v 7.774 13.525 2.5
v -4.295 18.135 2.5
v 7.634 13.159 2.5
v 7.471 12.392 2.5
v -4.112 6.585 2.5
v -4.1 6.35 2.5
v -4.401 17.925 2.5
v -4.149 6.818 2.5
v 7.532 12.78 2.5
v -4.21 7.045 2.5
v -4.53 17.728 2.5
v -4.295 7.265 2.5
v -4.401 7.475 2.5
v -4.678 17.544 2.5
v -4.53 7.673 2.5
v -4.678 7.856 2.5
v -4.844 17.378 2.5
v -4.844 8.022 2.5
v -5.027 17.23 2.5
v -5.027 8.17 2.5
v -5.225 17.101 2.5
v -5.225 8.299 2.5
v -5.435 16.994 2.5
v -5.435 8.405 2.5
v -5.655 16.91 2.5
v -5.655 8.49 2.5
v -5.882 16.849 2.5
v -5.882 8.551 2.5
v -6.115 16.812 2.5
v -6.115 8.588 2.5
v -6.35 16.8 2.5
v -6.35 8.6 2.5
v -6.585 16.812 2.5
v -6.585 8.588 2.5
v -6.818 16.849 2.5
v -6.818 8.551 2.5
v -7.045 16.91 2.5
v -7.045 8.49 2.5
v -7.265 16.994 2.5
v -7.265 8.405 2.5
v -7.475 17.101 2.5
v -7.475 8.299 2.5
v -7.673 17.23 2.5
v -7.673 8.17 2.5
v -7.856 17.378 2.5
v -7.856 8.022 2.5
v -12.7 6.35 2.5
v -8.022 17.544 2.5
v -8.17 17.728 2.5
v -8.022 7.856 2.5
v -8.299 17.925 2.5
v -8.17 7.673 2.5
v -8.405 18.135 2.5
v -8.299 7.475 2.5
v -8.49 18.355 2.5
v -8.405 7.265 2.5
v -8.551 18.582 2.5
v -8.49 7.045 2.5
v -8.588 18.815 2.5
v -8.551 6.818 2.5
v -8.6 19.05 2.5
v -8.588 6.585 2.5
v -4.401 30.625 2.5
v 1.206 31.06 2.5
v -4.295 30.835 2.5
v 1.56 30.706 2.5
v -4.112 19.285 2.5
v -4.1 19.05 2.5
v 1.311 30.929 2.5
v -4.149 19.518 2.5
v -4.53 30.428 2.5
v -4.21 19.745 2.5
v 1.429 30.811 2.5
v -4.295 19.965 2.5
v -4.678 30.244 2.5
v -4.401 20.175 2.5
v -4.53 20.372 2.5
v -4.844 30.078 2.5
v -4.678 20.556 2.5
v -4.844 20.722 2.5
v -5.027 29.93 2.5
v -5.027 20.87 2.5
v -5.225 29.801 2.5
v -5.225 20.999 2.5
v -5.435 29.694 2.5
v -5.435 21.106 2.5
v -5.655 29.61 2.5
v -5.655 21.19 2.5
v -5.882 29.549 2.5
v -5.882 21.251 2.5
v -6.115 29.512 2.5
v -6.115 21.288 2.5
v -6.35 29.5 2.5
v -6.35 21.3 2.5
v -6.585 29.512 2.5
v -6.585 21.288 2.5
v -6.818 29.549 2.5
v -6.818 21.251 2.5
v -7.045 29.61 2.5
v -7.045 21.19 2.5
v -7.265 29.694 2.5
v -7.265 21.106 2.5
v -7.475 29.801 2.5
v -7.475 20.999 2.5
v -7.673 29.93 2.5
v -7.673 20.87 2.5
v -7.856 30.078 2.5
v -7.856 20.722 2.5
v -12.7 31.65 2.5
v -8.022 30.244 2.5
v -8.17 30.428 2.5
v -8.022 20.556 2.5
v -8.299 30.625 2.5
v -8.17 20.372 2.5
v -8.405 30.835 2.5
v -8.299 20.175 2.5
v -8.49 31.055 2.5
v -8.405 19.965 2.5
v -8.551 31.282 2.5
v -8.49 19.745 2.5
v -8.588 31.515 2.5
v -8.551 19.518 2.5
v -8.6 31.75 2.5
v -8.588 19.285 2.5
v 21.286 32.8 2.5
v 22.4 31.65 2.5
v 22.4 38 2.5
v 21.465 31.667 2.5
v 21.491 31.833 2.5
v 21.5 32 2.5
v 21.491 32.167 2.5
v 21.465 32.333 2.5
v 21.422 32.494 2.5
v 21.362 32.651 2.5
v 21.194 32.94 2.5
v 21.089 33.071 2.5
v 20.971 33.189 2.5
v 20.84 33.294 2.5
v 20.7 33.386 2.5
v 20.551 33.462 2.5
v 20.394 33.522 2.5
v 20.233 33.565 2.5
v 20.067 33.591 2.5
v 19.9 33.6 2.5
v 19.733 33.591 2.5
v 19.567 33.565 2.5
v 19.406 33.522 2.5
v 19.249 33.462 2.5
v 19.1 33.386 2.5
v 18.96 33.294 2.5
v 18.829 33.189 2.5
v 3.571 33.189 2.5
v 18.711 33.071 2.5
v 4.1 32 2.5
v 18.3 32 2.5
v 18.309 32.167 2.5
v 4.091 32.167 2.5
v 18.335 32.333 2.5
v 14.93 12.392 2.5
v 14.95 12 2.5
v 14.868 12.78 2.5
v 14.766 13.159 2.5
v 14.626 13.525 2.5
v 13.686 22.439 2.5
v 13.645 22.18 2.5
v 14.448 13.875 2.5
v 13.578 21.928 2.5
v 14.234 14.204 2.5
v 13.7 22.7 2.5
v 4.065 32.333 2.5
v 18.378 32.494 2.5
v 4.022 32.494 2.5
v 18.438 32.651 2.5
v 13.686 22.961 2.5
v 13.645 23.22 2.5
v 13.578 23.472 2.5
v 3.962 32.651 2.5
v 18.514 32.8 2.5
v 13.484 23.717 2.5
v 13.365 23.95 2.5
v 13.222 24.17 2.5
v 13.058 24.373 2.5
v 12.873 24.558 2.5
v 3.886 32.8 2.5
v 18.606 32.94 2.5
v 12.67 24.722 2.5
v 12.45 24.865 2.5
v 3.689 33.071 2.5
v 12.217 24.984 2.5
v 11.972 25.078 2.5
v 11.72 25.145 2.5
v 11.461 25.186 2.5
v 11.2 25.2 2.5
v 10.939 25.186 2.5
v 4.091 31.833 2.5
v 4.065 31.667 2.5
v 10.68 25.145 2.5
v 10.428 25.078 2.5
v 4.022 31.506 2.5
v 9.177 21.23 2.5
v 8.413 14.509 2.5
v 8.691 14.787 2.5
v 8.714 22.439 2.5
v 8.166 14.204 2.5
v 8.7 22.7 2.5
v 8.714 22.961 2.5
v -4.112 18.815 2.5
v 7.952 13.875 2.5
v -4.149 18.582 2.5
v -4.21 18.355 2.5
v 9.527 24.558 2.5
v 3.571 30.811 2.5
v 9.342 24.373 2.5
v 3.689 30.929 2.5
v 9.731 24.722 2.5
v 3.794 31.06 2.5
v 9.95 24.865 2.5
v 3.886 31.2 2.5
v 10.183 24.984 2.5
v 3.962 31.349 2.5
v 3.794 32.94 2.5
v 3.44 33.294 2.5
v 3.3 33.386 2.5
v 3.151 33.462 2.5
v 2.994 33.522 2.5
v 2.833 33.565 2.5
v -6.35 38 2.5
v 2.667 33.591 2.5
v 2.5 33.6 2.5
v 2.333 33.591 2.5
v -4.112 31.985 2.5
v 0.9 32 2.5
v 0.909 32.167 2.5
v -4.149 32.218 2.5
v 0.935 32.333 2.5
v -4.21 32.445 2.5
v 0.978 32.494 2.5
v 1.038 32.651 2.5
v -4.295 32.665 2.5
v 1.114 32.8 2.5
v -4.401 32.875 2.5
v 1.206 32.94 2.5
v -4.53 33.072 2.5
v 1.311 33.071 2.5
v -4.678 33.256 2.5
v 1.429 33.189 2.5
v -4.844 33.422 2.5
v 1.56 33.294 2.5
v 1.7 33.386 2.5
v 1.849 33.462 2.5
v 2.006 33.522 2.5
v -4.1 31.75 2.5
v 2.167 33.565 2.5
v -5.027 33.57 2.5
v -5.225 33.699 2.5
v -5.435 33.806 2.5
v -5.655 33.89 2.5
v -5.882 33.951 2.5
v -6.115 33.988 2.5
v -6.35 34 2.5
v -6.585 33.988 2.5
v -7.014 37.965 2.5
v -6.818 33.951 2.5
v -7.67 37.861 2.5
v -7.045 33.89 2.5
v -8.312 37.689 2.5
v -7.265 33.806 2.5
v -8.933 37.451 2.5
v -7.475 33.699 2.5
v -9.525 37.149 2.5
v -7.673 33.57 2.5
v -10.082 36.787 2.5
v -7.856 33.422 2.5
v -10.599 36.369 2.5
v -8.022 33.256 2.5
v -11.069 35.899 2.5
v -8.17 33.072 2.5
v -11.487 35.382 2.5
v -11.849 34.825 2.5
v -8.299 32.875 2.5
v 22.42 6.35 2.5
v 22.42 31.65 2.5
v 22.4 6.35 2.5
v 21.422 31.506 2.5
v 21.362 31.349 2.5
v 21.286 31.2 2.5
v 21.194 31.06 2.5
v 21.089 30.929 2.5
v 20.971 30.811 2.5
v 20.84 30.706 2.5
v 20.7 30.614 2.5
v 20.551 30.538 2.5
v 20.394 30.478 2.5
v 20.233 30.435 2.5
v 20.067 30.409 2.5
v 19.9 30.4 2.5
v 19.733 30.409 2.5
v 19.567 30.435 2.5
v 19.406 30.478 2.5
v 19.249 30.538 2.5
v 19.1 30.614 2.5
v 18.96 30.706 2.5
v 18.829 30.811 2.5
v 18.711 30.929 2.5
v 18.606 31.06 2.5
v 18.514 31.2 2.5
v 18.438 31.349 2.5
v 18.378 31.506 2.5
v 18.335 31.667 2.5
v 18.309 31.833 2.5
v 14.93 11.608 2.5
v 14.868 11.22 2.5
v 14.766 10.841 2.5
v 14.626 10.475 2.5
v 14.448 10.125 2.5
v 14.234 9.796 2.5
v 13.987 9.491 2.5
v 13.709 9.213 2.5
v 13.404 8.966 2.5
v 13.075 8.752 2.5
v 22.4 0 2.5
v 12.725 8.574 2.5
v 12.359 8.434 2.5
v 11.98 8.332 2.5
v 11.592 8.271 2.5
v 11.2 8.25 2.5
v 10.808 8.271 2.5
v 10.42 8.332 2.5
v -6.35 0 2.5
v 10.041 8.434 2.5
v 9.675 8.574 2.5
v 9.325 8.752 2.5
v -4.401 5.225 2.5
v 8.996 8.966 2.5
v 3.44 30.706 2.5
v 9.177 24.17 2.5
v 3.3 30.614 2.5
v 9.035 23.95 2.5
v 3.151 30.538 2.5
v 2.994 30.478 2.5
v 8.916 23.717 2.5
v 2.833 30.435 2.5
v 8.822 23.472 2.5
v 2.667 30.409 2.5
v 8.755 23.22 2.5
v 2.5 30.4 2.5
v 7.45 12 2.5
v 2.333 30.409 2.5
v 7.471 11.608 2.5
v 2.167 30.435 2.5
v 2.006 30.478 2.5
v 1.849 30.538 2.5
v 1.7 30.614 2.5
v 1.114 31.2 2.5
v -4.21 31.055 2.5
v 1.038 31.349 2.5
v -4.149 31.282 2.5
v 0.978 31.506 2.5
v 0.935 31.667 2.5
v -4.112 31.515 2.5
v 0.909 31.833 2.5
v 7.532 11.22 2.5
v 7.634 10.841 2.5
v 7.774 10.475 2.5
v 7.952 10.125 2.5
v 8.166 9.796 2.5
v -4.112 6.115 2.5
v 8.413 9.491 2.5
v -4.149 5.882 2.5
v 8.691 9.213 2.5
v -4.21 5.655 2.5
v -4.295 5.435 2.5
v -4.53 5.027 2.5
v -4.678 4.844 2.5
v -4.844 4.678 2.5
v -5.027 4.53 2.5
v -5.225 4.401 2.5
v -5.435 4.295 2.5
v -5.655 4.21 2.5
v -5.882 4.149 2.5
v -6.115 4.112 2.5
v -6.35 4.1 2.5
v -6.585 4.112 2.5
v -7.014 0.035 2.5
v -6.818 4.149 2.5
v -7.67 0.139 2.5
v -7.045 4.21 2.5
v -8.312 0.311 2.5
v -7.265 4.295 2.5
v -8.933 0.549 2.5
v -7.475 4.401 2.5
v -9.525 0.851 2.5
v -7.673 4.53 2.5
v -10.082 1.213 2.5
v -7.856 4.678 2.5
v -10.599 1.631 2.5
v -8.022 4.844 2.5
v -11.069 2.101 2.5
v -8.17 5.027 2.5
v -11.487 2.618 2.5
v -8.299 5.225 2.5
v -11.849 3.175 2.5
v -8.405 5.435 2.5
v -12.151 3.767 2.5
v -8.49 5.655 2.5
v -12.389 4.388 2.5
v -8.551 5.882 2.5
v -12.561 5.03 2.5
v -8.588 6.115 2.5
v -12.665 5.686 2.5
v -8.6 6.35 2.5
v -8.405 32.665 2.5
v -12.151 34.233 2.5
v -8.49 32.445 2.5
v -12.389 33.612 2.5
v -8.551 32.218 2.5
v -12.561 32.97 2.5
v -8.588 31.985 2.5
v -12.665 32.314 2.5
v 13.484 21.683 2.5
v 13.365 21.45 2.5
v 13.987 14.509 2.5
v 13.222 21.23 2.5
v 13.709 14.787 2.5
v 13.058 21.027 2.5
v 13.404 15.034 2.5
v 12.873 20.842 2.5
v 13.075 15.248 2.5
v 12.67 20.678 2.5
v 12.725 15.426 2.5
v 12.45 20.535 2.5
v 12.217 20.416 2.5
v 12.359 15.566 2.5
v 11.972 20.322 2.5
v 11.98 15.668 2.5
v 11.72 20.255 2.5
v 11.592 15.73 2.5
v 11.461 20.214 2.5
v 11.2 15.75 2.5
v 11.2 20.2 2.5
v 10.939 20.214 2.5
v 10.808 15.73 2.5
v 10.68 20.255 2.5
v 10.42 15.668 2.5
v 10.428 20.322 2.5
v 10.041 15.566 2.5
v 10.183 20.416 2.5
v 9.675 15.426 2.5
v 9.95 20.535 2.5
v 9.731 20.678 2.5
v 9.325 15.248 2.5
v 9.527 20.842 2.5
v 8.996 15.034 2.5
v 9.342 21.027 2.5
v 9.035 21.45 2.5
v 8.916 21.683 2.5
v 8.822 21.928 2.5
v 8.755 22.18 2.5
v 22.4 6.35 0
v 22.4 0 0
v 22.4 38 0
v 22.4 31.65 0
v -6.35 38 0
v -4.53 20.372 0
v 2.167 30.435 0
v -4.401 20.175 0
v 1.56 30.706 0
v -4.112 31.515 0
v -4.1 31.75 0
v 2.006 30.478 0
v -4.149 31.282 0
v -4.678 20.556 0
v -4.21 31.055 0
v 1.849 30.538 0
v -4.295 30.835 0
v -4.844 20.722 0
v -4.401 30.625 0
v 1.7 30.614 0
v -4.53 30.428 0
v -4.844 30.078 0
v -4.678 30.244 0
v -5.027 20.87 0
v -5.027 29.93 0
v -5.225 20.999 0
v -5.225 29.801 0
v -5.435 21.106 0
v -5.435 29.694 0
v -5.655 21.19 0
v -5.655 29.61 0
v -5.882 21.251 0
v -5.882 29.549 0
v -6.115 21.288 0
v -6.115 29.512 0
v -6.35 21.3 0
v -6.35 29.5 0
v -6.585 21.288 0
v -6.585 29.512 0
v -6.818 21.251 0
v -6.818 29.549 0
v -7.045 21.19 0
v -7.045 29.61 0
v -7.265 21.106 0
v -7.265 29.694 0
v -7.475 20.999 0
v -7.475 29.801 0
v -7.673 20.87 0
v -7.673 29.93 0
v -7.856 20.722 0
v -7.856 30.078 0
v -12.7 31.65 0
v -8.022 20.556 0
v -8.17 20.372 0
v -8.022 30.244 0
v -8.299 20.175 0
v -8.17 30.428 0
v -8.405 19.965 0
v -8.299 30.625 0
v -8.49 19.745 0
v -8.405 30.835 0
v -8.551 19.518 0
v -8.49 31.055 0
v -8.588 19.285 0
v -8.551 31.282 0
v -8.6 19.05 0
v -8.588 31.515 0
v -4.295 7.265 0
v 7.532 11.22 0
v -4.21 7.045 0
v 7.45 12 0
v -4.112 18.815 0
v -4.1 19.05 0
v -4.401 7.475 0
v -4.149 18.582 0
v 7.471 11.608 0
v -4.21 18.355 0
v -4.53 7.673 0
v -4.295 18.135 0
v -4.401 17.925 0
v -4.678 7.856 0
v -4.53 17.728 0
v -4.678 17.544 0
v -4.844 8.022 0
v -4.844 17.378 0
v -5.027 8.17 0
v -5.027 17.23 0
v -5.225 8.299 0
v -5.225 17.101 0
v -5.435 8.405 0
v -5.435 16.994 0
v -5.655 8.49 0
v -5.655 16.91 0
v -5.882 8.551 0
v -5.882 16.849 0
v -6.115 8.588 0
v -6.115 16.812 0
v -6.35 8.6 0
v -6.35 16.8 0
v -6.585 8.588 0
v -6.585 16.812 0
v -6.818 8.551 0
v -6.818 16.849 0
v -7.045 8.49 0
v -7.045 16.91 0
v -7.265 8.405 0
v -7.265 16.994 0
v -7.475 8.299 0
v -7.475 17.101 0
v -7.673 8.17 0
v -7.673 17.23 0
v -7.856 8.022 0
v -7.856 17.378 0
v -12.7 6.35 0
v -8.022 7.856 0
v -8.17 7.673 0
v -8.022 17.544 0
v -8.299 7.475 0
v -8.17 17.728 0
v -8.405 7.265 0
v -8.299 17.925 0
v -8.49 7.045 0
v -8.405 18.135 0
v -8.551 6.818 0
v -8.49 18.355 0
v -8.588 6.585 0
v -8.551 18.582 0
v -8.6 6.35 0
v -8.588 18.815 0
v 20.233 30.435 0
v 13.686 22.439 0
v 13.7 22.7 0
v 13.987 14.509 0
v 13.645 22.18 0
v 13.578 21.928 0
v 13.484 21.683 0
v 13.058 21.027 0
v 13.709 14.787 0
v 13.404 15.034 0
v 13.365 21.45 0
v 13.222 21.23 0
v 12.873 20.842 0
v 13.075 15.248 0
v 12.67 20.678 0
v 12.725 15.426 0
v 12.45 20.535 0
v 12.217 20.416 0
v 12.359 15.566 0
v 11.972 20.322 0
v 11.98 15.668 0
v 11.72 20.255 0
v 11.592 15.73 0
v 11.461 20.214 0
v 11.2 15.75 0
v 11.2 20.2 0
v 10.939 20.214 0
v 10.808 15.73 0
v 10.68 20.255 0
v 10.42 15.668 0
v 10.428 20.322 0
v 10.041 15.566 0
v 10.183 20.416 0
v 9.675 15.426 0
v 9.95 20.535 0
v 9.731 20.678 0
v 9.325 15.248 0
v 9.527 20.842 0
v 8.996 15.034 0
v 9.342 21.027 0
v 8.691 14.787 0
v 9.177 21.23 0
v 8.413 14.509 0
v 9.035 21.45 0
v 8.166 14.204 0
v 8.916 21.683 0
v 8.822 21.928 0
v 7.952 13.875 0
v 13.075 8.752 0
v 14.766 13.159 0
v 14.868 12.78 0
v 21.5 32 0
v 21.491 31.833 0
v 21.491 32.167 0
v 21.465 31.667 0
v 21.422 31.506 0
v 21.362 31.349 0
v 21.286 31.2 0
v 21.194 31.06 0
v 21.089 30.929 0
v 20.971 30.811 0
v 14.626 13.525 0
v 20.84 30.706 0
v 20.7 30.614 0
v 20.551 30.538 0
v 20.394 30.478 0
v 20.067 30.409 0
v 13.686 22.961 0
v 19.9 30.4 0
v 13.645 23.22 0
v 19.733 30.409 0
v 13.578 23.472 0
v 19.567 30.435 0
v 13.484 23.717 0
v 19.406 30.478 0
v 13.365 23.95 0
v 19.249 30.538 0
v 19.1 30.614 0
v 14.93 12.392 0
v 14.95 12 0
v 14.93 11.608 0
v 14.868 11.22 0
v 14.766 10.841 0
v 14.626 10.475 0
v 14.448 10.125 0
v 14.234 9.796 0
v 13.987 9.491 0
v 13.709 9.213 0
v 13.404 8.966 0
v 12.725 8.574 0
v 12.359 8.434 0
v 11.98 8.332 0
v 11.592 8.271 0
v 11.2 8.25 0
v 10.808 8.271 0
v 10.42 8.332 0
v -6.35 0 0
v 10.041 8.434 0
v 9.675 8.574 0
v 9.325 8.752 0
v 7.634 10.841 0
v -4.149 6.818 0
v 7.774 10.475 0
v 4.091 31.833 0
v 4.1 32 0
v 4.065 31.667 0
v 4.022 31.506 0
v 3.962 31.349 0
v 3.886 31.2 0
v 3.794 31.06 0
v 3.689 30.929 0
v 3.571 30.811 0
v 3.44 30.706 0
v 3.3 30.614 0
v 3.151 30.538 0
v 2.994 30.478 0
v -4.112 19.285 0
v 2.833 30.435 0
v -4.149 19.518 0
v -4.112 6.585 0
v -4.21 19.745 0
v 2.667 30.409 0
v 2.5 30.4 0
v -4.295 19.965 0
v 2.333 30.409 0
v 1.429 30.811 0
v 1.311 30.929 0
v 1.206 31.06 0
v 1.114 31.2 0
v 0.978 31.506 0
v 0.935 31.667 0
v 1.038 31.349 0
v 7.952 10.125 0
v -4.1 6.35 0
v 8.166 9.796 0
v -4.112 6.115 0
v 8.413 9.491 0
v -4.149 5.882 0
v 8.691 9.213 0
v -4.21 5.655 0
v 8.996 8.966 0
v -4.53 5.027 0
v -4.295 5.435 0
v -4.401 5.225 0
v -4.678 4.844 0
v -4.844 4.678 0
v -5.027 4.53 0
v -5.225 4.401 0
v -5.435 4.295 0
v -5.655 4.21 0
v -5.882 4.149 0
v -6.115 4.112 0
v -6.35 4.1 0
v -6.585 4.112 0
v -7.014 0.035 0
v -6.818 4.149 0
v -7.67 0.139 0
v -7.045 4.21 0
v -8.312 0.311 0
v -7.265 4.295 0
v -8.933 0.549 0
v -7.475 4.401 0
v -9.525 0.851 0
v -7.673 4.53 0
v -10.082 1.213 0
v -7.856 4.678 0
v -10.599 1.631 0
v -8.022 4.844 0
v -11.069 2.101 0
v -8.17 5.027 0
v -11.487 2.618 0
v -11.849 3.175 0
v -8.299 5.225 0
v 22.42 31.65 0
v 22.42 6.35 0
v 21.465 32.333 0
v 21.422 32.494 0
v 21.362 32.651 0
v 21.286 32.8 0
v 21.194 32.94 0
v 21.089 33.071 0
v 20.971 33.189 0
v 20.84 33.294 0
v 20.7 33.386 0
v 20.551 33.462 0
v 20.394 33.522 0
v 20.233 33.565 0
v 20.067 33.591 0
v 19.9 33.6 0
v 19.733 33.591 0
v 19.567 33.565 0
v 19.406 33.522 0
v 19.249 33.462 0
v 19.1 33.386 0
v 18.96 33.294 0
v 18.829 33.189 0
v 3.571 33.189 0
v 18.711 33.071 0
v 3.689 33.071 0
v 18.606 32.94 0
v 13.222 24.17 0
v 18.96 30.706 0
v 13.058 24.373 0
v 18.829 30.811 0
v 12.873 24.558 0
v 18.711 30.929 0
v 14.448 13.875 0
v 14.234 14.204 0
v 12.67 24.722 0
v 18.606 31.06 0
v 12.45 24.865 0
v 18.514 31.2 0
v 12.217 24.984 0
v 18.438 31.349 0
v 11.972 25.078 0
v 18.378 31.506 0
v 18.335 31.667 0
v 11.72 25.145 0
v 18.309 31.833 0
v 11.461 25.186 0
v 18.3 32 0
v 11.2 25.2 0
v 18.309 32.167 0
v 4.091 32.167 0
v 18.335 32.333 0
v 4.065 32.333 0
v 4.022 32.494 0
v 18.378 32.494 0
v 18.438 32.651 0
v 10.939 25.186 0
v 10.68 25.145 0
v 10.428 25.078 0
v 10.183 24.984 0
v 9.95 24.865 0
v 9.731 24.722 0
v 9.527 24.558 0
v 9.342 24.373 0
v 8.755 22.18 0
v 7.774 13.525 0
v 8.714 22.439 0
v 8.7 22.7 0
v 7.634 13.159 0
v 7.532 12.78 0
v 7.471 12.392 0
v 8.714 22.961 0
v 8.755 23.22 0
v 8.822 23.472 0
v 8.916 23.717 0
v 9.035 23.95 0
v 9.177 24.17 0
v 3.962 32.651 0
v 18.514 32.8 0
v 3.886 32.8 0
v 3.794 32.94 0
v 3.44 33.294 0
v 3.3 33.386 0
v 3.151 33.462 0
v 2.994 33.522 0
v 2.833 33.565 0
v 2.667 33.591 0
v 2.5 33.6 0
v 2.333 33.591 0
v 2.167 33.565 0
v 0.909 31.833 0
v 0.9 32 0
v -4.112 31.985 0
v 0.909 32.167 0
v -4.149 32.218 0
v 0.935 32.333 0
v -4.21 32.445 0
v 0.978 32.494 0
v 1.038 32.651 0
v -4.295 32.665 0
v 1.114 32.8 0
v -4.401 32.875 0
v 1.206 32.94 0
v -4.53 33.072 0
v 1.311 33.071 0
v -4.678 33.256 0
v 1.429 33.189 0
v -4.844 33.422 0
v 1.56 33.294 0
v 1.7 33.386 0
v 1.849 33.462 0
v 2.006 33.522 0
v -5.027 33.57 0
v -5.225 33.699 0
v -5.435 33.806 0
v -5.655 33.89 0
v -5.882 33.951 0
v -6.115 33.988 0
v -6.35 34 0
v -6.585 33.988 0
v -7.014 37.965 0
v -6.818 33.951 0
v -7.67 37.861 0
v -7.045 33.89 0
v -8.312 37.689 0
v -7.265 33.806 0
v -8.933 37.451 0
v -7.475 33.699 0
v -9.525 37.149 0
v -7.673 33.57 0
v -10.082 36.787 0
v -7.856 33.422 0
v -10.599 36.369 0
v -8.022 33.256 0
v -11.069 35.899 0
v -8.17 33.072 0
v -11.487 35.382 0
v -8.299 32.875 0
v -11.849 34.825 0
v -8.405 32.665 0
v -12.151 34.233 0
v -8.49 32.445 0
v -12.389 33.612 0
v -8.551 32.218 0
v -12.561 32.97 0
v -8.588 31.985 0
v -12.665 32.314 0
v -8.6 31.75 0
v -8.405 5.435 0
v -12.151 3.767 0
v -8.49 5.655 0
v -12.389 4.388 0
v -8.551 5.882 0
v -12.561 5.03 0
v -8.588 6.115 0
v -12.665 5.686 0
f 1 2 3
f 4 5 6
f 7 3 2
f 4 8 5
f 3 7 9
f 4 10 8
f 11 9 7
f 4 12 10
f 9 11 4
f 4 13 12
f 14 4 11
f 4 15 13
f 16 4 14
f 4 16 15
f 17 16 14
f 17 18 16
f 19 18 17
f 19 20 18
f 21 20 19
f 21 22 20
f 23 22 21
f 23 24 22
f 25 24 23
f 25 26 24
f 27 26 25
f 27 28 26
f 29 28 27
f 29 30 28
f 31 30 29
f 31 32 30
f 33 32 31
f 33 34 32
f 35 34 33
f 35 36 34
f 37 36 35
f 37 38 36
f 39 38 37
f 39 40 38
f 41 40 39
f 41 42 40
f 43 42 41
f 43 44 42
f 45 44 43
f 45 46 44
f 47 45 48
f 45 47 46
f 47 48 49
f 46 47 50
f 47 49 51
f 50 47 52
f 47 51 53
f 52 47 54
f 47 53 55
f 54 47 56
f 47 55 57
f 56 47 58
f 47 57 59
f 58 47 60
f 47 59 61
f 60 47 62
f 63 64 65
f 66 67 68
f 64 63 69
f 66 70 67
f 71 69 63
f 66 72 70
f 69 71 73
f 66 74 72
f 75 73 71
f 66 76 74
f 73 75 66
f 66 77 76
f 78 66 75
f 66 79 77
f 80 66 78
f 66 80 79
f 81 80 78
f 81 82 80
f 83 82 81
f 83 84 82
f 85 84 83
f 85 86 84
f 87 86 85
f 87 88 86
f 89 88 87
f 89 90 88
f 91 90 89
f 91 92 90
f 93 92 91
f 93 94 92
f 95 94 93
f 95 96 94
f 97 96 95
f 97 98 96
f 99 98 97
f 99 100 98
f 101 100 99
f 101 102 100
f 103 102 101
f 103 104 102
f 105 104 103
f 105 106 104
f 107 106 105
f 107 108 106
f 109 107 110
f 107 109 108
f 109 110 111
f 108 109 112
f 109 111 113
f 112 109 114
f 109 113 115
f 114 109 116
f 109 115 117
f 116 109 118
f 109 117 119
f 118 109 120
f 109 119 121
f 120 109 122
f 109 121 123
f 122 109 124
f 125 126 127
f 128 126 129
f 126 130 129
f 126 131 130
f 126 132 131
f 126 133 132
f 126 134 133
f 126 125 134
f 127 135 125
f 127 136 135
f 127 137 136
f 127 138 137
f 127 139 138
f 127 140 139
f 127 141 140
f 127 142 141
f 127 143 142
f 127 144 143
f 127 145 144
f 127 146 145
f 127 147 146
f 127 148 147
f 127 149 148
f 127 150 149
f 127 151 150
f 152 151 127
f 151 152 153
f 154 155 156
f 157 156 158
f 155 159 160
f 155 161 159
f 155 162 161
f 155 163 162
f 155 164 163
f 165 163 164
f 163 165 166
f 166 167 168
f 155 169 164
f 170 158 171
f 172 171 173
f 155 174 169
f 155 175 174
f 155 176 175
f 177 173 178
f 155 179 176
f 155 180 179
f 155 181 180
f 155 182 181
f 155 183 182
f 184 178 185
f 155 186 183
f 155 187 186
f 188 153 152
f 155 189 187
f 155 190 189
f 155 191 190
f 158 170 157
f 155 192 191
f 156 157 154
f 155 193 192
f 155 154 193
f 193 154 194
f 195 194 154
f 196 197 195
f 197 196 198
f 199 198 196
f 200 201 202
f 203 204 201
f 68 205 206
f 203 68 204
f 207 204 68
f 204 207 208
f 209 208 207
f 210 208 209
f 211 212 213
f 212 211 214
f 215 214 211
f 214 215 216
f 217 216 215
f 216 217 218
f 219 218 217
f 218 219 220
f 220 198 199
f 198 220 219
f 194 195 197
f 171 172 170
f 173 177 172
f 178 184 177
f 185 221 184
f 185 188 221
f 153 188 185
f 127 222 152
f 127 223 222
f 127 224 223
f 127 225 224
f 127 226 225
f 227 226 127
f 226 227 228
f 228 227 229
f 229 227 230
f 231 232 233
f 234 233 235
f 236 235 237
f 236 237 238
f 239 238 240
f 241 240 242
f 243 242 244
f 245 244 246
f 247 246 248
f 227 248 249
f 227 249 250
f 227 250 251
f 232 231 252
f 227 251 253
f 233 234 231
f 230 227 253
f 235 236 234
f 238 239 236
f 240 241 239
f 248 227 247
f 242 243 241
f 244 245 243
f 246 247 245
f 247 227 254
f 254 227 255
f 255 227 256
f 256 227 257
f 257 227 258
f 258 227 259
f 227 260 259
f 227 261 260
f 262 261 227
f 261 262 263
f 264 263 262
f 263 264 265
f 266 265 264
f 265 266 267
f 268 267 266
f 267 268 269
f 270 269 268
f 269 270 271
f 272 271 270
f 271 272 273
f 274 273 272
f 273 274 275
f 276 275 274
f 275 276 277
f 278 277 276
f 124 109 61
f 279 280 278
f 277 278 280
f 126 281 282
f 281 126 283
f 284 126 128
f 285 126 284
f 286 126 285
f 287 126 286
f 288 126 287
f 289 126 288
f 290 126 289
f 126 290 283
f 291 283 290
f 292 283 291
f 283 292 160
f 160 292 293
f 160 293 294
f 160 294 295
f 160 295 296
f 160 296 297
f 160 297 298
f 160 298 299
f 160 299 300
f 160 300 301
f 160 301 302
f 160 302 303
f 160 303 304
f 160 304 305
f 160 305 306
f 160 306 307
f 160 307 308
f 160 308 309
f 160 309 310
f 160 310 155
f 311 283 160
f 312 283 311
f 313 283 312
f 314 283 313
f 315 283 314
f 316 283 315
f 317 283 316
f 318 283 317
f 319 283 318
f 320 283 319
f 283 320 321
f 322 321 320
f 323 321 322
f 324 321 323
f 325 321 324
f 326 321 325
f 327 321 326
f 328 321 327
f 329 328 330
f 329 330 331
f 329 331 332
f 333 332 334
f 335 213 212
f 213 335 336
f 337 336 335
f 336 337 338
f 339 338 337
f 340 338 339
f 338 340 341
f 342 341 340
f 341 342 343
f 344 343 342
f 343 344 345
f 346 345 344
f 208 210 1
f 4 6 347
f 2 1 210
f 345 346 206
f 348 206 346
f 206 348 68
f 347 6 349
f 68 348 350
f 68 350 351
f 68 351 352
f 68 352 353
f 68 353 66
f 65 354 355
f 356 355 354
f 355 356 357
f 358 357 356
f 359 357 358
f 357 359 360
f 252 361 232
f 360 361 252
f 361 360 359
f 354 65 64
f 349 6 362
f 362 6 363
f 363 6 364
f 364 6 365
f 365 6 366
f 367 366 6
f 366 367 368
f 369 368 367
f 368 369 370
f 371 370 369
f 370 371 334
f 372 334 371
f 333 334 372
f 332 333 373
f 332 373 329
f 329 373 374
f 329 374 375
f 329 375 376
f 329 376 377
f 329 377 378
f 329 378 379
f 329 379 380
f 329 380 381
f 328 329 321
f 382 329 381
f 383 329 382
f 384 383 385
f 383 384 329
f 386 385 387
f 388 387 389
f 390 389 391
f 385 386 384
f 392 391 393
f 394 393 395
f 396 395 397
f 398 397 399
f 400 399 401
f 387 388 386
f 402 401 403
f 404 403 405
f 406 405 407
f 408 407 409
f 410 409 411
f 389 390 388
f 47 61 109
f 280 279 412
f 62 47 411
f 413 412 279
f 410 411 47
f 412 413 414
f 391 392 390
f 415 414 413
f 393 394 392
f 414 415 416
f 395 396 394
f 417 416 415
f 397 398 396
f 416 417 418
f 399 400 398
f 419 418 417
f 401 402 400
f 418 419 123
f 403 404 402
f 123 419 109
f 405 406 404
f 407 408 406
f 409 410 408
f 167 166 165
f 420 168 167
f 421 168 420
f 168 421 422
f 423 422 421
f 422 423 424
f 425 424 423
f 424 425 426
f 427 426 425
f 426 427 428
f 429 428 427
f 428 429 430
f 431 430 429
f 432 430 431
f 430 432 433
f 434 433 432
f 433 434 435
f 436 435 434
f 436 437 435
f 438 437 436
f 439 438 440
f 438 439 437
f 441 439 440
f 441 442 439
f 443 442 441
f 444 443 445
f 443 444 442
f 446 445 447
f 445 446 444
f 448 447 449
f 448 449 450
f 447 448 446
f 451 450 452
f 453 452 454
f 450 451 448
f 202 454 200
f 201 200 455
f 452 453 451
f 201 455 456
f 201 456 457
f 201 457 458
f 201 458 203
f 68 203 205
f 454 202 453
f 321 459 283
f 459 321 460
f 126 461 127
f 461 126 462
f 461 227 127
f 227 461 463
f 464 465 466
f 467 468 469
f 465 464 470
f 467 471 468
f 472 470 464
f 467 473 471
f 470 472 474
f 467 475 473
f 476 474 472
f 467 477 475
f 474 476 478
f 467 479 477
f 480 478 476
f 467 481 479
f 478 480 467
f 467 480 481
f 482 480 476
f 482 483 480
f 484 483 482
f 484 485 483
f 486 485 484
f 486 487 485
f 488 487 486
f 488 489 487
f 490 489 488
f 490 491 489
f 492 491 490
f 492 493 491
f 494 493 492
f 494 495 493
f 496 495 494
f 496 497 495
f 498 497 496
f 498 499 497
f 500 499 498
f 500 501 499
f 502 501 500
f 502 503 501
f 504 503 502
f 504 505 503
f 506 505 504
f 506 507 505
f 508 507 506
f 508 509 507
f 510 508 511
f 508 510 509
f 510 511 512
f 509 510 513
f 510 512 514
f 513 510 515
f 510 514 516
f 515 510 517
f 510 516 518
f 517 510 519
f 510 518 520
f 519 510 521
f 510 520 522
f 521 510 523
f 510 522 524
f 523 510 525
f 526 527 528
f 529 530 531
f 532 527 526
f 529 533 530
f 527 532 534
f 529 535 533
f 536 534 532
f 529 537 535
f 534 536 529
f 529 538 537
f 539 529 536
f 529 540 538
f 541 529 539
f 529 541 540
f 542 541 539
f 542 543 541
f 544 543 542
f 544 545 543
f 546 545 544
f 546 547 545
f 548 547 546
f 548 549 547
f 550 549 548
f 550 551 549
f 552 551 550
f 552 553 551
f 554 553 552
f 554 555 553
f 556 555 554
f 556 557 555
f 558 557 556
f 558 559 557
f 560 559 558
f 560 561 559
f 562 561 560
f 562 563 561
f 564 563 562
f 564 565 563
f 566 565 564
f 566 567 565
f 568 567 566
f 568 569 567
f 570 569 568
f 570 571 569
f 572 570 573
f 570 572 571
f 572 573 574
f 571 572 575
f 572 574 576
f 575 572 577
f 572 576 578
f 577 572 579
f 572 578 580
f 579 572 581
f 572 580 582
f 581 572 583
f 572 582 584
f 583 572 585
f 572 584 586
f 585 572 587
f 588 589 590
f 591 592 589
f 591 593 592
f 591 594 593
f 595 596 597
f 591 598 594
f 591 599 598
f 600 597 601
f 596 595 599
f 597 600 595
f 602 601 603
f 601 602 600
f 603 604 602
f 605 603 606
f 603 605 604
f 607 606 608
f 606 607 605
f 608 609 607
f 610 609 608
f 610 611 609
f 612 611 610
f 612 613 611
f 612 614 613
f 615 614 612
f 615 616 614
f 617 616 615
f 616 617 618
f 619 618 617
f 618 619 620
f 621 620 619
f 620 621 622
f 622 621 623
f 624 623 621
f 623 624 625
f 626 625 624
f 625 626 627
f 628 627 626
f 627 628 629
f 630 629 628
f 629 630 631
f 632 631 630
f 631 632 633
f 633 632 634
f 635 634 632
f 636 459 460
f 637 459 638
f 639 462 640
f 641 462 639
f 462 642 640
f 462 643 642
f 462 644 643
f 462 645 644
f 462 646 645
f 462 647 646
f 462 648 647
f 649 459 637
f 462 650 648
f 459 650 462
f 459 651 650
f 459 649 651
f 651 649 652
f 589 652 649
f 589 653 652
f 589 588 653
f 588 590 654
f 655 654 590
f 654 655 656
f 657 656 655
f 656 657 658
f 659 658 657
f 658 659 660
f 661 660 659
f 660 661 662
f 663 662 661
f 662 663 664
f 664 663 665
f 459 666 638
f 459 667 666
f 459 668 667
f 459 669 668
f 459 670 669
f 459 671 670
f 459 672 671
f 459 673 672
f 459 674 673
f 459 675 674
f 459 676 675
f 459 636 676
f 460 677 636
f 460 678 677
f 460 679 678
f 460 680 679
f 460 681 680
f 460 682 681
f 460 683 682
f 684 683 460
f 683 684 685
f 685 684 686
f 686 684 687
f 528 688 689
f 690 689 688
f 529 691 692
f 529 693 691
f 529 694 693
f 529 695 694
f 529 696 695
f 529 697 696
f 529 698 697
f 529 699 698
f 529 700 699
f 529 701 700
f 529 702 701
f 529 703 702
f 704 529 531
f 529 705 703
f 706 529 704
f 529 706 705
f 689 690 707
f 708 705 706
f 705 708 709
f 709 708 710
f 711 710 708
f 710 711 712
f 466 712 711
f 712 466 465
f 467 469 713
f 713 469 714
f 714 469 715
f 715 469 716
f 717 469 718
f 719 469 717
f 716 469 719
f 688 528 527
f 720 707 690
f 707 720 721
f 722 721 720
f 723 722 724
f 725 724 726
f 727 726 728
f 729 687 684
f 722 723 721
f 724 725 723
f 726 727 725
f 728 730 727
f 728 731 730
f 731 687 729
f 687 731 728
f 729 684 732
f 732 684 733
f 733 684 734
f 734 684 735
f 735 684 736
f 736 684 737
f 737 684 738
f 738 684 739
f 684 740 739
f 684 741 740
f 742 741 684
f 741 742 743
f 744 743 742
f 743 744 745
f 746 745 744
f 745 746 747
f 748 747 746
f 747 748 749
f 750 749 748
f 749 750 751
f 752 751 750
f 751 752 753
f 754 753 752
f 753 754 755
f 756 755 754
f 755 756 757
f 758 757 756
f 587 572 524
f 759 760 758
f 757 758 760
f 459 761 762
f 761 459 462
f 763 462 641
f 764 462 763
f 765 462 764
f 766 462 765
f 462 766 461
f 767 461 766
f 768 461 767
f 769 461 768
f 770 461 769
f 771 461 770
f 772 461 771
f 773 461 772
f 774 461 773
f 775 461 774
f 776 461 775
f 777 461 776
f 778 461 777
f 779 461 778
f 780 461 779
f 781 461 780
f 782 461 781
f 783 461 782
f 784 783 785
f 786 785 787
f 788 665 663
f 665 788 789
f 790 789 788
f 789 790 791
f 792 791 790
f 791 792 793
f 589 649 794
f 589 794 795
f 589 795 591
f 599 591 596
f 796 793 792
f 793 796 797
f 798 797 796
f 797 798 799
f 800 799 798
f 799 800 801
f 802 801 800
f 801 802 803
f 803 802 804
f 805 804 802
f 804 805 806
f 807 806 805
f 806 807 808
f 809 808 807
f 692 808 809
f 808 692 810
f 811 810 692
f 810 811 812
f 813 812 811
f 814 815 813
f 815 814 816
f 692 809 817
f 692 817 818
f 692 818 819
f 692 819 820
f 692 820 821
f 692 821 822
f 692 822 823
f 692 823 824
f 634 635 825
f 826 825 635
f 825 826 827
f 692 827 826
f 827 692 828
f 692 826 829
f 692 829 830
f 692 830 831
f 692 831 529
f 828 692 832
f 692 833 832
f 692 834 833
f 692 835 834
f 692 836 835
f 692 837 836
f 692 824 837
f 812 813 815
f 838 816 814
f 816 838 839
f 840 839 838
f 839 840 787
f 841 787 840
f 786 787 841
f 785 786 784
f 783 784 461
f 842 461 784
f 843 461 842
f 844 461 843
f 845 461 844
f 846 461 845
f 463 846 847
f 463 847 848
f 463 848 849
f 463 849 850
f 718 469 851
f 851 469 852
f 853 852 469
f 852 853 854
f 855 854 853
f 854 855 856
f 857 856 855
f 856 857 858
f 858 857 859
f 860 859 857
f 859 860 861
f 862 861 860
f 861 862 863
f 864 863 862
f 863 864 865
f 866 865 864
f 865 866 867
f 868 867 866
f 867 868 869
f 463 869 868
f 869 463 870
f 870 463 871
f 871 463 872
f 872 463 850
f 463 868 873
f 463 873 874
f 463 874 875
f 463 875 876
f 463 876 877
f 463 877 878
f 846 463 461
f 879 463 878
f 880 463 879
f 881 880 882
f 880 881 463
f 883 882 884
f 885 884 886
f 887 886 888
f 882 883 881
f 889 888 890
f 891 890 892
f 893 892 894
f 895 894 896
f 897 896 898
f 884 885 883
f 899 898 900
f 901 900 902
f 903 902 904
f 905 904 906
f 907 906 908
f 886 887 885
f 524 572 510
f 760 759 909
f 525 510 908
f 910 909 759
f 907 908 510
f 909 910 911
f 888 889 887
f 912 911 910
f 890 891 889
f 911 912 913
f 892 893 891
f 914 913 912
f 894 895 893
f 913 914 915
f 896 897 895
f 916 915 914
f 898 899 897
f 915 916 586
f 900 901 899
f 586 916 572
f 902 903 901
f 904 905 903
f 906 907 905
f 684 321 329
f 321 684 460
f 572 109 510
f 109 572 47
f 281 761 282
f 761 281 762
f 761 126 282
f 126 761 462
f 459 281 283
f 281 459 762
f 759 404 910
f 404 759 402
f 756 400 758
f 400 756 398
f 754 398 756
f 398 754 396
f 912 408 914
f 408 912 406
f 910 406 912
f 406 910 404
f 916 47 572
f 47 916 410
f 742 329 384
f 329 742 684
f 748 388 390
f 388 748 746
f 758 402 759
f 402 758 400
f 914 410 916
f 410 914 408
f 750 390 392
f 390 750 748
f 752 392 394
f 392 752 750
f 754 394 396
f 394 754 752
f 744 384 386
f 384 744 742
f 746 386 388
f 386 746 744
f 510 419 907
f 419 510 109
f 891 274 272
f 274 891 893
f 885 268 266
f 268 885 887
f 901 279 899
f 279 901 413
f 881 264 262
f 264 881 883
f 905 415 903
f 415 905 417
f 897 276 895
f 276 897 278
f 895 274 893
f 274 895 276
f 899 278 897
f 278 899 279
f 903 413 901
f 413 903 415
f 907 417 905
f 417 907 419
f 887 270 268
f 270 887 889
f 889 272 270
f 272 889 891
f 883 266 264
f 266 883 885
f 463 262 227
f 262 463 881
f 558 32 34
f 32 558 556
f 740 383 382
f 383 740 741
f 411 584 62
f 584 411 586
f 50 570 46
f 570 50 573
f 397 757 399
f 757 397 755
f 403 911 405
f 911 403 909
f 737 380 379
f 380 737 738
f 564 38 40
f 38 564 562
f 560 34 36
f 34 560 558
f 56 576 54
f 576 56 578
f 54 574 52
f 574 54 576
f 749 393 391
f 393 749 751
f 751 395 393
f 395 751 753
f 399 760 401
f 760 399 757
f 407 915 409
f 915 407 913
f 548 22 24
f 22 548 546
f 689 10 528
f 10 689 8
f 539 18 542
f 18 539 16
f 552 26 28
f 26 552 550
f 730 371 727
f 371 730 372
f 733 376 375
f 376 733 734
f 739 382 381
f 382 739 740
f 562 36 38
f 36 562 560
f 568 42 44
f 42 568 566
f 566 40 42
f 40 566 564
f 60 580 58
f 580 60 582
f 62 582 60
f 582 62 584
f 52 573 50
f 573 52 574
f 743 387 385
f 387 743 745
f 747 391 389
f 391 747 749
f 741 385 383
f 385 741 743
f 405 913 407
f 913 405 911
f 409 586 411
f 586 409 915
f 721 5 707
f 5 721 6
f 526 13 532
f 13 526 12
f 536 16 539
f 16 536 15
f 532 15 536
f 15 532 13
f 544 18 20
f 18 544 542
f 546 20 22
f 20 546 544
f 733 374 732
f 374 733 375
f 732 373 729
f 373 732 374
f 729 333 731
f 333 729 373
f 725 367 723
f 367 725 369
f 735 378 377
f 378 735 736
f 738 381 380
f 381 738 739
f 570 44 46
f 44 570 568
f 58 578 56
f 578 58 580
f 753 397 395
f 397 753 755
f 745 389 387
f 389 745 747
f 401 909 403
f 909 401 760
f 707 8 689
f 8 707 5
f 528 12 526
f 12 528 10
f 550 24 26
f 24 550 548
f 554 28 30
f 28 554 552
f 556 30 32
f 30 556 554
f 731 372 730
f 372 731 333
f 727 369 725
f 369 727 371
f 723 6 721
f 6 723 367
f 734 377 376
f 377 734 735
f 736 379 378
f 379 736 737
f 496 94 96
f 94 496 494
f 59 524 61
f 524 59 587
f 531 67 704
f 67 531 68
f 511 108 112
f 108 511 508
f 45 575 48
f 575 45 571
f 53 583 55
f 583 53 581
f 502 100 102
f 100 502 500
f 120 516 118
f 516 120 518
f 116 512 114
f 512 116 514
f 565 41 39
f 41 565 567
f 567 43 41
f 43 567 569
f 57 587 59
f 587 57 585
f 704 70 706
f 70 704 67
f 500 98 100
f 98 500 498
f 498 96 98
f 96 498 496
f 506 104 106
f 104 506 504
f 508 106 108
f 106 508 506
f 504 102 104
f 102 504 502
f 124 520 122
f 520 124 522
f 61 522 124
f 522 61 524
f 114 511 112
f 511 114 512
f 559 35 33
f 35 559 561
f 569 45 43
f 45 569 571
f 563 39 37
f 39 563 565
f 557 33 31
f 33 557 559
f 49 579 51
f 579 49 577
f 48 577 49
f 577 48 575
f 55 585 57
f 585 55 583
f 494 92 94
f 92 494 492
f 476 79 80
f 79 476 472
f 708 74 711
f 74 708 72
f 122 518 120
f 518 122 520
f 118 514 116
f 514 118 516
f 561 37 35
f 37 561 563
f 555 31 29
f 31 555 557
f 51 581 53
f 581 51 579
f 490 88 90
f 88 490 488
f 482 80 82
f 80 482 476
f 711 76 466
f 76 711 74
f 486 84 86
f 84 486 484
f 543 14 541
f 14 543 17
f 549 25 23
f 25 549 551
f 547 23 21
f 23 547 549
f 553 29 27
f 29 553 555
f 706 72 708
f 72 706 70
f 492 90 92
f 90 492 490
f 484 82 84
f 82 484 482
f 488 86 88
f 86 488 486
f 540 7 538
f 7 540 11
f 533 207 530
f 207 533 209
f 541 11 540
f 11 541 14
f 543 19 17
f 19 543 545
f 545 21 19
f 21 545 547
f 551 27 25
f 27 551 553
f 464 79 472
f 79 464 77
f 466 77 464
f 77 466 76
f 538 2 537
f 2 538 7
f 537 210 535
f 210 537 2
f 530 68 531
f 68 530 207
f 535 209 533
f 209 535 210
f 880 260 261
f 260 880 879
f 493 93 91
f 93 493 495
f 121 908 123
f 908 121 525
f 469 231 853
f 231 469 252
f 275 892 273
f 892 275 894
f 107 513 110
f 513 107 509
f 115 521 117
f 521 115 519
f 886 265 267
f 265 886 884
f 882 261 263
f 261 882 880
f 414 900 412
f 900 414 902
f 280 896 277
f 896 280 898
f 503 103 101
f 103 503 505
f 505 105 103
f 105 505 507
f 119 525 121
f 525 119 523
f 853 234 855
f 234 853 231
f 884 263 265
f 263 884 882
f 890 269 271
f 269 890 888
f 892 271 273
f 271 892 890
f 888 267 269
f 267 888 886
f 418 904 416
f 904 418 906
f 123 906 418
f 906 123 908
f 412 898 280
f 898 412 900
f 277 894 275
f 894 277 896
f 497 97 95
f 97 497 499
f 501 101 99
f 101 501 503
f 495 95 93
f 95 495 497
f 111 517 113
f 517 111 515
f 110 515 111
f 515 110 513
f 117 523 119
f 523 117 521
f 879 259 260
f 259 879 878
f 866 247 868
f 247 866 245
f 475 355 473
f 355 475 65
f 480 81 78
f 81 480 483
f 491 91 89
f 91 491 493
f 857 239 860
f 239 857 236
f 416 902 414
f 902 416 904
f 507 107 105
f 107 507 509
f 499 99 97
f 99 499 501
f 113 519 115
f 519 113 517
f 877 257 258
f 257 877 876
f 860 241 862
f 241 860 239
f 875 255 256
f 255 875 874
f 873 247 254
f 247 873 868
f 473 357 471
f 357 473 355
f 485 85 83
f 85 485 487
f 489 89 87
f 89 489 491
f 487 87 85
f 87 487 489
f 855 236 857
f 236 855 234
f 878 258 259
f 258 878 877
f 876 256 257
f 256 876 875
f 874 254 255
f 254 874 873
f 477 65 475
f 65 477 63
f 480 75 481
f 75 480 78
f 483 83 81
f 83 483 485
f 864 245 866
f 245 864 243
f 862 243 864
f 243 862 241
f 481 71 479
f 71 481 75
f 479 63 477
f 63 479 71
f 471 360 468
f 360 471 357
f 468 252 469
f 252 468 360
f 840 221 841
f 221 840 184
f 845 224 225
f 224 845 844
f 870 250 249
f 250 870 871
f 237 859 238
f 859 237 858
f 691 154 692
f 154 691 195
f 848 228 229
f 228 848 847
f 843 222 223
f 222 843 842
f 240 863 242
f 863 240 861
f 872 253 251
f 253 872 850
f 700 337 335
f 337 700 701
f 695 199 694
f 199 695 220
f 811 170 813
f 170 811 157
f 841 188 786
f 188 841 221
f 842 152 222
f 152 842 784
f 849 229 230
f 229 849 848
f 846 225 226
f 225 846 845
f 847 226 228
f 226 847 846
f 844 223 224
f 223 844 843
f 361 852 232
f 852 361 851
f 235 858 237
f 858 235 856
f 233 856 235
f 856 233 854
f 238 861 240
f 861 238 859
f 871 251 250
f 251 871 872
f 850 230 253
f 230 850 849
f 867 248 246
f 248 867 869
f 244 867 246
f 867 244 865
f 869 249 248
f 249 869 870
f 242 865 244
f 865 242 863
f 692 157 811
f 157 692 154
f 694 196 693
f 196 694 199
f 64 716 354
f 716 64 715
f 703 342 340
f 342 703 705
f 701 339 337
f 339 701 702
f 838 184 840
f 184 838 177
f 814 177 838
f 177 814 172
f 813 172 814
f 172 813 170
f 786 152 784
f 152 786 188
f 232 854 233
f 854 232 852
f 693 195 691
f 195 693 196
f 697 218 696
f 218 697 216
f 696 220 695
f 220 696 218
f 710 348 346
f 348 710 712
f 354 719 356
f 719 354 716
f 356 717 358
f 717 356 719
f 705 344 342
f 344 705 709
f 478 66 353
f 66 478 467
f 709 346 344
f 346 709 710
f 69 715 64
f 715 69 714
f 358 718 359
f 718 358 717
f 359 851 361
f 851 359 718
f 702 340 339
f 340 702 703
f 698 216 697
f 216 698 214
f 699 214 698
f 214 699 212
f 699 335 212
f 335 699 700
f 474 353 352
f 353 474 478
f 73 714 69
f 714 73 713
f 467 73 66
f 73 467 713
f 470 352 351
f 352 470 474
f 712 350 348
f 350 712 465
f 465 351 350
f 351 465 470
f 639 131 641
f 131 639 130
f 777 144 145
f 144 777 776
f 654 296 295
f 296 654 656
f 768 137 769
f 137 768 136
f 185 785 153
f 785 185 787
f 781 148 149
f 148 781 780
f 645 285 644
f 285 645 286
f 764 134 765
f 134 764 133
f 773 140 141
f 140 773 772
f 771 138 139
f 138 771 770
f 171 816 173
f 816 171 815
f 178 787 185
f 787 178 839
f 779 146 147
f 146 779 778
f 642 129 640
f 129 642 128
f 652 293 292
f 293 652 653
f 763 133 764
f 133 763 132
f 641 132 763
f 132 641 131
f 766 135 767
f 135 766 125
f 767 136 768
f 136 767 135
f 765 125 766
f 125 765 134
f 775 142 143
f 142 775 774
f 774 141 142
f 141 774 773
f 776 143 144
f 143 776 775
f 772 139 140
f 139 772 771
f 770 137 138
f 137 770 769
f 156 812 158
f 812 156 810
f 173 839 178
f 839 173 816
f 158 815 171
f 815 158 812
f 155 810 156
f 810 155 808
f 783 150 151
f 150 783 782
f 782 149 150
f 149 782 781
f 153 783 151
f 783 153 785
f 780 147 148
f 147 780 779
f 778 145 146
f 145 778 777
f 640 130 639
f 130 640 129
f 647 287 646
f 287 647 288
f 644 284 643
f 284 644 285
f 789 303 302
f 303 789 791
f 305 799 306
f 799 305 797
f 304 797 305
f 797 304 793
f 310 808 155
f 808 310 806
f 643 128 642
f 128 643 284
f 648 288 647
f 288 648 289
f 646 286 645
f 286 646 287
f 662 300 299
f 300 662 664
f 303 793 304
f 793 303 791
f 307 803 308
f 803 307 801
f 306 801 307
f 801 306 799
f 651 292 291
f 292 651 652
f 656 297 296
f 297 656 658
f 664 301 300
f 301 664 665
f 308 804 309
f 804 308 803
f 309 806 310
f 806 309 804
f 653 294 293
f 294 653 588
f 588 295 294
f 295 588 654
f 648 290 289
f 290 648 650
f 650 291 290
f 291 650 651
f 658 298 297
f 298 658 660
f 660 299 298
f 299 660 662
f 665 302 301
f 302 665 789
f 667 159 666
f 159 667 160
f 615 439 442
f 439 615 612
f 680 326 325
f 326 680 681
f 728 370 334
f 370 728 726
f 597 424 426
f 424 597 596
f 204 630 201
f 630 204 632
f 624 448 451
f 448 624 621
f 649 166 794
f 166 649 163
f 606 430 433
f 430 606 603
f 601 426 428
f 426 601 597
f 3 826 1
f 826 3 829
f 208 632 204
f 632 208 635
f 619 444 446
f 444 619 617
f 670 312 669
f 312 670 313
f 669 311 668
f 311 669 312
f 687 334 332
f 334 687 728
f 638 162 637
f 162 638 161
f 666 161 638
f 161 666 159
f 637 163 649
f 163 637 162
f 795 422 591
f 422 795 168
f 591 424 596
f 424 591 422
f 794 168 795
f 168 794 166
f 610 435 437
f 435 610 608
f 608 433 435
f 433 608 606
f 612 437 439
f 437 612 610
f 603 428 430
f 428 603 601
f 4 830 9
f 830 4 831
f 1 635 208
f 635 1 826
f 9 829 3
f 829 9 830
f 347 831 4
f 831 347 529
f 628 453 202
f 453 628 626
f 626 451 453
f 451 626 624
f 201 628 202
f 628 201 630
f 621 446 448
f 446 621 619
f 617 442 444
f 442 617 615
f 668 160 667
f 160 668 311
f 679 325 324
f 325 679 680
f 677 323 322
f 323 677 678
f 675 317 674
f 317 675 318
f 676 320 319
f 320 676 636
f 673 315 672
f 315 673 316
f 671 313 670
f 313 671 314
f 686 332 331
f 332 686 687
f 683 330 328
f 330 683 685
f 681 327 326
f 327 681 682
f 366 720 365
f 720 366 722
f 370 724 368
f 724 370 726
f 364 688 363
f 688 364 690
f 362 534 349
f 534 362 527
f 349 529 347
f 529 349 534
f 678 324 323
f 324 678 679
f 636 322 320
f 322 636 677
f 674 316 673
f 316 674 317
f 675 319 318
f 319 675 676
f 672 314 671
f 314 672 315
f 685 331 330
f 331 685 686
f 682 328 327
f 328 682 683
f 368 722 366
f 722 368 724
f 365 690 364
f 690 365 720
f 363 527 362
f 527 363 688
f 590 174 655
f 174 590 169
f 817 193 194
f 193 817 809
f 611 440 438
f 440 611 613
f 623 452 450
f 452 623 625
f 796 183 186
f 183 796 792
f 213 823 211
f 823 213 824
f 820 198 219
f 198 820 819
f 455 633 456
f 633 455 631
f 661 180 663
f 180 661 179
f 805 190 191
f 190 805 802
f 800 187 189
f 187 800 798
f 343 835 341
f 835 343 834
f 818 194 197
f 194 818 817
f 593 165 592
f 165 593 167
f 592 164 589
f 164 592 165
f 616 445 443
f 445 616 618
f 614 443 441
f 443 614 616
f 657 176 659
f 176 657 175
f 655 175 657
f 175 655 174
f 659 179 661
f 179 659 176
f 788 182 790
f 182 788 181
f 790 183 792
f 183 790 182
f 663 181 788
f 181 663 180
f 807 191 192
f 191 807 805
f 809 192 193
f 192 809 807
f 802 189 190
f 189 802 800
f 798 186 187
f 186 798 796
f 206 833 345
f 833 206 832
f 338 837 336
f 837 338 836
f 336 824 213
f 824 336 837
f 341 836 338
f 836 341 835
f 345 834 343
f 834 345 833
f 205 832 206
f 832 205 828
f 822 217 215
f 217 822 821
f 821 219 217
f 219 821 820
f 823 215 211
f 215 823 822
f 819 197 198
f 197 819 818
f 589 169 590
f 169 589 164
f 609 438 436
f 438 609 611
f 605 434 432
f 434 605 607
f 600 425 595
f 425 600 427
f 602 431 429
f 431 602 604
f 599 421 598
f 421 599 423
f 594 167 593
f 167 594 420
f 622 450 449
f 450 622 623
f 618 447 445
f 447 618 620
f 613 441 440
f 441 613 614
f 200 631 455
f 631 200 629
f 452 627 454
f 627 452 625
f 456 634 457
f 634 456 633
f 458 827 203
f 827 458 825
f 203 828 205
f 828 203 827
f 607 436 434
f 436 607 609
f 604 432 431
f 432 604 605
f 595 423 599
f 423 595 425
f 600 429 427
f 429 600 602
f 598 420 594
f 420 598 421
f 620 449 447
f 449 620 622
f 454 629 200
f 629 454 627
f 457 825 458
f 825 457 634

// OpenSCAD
$fn=60;

difference(){
    union(){
translate([-6.35,0,0])cube([28.75,38,2.5]);
translate([-12.7,6.35,0])cube([35.12,25.3,2.5]);
translate([-6.35,6.35,0])cylinder(d=12.7,h=2.5);
translate([-6.35,31.65,0])cylinder(d=12.7,h=2.5);
    }
translate([2.5,32,-1])cylinder(d=3.2,h=5);
translate([19.9,32,-1])cylinder(d=3.2,h=5);
translate([11.2,12,-1])cylinder(d=7.5,h=5);    
translate([11.2,22.7,-1])cylinder(d=5,h=5);
translate([-6.35,6.35,0])rotate([0,0,90])
for (i=[0:2]){
   translate([i*12.7,0,-1])cylinder(d=4.5,h=5);
}    
}
